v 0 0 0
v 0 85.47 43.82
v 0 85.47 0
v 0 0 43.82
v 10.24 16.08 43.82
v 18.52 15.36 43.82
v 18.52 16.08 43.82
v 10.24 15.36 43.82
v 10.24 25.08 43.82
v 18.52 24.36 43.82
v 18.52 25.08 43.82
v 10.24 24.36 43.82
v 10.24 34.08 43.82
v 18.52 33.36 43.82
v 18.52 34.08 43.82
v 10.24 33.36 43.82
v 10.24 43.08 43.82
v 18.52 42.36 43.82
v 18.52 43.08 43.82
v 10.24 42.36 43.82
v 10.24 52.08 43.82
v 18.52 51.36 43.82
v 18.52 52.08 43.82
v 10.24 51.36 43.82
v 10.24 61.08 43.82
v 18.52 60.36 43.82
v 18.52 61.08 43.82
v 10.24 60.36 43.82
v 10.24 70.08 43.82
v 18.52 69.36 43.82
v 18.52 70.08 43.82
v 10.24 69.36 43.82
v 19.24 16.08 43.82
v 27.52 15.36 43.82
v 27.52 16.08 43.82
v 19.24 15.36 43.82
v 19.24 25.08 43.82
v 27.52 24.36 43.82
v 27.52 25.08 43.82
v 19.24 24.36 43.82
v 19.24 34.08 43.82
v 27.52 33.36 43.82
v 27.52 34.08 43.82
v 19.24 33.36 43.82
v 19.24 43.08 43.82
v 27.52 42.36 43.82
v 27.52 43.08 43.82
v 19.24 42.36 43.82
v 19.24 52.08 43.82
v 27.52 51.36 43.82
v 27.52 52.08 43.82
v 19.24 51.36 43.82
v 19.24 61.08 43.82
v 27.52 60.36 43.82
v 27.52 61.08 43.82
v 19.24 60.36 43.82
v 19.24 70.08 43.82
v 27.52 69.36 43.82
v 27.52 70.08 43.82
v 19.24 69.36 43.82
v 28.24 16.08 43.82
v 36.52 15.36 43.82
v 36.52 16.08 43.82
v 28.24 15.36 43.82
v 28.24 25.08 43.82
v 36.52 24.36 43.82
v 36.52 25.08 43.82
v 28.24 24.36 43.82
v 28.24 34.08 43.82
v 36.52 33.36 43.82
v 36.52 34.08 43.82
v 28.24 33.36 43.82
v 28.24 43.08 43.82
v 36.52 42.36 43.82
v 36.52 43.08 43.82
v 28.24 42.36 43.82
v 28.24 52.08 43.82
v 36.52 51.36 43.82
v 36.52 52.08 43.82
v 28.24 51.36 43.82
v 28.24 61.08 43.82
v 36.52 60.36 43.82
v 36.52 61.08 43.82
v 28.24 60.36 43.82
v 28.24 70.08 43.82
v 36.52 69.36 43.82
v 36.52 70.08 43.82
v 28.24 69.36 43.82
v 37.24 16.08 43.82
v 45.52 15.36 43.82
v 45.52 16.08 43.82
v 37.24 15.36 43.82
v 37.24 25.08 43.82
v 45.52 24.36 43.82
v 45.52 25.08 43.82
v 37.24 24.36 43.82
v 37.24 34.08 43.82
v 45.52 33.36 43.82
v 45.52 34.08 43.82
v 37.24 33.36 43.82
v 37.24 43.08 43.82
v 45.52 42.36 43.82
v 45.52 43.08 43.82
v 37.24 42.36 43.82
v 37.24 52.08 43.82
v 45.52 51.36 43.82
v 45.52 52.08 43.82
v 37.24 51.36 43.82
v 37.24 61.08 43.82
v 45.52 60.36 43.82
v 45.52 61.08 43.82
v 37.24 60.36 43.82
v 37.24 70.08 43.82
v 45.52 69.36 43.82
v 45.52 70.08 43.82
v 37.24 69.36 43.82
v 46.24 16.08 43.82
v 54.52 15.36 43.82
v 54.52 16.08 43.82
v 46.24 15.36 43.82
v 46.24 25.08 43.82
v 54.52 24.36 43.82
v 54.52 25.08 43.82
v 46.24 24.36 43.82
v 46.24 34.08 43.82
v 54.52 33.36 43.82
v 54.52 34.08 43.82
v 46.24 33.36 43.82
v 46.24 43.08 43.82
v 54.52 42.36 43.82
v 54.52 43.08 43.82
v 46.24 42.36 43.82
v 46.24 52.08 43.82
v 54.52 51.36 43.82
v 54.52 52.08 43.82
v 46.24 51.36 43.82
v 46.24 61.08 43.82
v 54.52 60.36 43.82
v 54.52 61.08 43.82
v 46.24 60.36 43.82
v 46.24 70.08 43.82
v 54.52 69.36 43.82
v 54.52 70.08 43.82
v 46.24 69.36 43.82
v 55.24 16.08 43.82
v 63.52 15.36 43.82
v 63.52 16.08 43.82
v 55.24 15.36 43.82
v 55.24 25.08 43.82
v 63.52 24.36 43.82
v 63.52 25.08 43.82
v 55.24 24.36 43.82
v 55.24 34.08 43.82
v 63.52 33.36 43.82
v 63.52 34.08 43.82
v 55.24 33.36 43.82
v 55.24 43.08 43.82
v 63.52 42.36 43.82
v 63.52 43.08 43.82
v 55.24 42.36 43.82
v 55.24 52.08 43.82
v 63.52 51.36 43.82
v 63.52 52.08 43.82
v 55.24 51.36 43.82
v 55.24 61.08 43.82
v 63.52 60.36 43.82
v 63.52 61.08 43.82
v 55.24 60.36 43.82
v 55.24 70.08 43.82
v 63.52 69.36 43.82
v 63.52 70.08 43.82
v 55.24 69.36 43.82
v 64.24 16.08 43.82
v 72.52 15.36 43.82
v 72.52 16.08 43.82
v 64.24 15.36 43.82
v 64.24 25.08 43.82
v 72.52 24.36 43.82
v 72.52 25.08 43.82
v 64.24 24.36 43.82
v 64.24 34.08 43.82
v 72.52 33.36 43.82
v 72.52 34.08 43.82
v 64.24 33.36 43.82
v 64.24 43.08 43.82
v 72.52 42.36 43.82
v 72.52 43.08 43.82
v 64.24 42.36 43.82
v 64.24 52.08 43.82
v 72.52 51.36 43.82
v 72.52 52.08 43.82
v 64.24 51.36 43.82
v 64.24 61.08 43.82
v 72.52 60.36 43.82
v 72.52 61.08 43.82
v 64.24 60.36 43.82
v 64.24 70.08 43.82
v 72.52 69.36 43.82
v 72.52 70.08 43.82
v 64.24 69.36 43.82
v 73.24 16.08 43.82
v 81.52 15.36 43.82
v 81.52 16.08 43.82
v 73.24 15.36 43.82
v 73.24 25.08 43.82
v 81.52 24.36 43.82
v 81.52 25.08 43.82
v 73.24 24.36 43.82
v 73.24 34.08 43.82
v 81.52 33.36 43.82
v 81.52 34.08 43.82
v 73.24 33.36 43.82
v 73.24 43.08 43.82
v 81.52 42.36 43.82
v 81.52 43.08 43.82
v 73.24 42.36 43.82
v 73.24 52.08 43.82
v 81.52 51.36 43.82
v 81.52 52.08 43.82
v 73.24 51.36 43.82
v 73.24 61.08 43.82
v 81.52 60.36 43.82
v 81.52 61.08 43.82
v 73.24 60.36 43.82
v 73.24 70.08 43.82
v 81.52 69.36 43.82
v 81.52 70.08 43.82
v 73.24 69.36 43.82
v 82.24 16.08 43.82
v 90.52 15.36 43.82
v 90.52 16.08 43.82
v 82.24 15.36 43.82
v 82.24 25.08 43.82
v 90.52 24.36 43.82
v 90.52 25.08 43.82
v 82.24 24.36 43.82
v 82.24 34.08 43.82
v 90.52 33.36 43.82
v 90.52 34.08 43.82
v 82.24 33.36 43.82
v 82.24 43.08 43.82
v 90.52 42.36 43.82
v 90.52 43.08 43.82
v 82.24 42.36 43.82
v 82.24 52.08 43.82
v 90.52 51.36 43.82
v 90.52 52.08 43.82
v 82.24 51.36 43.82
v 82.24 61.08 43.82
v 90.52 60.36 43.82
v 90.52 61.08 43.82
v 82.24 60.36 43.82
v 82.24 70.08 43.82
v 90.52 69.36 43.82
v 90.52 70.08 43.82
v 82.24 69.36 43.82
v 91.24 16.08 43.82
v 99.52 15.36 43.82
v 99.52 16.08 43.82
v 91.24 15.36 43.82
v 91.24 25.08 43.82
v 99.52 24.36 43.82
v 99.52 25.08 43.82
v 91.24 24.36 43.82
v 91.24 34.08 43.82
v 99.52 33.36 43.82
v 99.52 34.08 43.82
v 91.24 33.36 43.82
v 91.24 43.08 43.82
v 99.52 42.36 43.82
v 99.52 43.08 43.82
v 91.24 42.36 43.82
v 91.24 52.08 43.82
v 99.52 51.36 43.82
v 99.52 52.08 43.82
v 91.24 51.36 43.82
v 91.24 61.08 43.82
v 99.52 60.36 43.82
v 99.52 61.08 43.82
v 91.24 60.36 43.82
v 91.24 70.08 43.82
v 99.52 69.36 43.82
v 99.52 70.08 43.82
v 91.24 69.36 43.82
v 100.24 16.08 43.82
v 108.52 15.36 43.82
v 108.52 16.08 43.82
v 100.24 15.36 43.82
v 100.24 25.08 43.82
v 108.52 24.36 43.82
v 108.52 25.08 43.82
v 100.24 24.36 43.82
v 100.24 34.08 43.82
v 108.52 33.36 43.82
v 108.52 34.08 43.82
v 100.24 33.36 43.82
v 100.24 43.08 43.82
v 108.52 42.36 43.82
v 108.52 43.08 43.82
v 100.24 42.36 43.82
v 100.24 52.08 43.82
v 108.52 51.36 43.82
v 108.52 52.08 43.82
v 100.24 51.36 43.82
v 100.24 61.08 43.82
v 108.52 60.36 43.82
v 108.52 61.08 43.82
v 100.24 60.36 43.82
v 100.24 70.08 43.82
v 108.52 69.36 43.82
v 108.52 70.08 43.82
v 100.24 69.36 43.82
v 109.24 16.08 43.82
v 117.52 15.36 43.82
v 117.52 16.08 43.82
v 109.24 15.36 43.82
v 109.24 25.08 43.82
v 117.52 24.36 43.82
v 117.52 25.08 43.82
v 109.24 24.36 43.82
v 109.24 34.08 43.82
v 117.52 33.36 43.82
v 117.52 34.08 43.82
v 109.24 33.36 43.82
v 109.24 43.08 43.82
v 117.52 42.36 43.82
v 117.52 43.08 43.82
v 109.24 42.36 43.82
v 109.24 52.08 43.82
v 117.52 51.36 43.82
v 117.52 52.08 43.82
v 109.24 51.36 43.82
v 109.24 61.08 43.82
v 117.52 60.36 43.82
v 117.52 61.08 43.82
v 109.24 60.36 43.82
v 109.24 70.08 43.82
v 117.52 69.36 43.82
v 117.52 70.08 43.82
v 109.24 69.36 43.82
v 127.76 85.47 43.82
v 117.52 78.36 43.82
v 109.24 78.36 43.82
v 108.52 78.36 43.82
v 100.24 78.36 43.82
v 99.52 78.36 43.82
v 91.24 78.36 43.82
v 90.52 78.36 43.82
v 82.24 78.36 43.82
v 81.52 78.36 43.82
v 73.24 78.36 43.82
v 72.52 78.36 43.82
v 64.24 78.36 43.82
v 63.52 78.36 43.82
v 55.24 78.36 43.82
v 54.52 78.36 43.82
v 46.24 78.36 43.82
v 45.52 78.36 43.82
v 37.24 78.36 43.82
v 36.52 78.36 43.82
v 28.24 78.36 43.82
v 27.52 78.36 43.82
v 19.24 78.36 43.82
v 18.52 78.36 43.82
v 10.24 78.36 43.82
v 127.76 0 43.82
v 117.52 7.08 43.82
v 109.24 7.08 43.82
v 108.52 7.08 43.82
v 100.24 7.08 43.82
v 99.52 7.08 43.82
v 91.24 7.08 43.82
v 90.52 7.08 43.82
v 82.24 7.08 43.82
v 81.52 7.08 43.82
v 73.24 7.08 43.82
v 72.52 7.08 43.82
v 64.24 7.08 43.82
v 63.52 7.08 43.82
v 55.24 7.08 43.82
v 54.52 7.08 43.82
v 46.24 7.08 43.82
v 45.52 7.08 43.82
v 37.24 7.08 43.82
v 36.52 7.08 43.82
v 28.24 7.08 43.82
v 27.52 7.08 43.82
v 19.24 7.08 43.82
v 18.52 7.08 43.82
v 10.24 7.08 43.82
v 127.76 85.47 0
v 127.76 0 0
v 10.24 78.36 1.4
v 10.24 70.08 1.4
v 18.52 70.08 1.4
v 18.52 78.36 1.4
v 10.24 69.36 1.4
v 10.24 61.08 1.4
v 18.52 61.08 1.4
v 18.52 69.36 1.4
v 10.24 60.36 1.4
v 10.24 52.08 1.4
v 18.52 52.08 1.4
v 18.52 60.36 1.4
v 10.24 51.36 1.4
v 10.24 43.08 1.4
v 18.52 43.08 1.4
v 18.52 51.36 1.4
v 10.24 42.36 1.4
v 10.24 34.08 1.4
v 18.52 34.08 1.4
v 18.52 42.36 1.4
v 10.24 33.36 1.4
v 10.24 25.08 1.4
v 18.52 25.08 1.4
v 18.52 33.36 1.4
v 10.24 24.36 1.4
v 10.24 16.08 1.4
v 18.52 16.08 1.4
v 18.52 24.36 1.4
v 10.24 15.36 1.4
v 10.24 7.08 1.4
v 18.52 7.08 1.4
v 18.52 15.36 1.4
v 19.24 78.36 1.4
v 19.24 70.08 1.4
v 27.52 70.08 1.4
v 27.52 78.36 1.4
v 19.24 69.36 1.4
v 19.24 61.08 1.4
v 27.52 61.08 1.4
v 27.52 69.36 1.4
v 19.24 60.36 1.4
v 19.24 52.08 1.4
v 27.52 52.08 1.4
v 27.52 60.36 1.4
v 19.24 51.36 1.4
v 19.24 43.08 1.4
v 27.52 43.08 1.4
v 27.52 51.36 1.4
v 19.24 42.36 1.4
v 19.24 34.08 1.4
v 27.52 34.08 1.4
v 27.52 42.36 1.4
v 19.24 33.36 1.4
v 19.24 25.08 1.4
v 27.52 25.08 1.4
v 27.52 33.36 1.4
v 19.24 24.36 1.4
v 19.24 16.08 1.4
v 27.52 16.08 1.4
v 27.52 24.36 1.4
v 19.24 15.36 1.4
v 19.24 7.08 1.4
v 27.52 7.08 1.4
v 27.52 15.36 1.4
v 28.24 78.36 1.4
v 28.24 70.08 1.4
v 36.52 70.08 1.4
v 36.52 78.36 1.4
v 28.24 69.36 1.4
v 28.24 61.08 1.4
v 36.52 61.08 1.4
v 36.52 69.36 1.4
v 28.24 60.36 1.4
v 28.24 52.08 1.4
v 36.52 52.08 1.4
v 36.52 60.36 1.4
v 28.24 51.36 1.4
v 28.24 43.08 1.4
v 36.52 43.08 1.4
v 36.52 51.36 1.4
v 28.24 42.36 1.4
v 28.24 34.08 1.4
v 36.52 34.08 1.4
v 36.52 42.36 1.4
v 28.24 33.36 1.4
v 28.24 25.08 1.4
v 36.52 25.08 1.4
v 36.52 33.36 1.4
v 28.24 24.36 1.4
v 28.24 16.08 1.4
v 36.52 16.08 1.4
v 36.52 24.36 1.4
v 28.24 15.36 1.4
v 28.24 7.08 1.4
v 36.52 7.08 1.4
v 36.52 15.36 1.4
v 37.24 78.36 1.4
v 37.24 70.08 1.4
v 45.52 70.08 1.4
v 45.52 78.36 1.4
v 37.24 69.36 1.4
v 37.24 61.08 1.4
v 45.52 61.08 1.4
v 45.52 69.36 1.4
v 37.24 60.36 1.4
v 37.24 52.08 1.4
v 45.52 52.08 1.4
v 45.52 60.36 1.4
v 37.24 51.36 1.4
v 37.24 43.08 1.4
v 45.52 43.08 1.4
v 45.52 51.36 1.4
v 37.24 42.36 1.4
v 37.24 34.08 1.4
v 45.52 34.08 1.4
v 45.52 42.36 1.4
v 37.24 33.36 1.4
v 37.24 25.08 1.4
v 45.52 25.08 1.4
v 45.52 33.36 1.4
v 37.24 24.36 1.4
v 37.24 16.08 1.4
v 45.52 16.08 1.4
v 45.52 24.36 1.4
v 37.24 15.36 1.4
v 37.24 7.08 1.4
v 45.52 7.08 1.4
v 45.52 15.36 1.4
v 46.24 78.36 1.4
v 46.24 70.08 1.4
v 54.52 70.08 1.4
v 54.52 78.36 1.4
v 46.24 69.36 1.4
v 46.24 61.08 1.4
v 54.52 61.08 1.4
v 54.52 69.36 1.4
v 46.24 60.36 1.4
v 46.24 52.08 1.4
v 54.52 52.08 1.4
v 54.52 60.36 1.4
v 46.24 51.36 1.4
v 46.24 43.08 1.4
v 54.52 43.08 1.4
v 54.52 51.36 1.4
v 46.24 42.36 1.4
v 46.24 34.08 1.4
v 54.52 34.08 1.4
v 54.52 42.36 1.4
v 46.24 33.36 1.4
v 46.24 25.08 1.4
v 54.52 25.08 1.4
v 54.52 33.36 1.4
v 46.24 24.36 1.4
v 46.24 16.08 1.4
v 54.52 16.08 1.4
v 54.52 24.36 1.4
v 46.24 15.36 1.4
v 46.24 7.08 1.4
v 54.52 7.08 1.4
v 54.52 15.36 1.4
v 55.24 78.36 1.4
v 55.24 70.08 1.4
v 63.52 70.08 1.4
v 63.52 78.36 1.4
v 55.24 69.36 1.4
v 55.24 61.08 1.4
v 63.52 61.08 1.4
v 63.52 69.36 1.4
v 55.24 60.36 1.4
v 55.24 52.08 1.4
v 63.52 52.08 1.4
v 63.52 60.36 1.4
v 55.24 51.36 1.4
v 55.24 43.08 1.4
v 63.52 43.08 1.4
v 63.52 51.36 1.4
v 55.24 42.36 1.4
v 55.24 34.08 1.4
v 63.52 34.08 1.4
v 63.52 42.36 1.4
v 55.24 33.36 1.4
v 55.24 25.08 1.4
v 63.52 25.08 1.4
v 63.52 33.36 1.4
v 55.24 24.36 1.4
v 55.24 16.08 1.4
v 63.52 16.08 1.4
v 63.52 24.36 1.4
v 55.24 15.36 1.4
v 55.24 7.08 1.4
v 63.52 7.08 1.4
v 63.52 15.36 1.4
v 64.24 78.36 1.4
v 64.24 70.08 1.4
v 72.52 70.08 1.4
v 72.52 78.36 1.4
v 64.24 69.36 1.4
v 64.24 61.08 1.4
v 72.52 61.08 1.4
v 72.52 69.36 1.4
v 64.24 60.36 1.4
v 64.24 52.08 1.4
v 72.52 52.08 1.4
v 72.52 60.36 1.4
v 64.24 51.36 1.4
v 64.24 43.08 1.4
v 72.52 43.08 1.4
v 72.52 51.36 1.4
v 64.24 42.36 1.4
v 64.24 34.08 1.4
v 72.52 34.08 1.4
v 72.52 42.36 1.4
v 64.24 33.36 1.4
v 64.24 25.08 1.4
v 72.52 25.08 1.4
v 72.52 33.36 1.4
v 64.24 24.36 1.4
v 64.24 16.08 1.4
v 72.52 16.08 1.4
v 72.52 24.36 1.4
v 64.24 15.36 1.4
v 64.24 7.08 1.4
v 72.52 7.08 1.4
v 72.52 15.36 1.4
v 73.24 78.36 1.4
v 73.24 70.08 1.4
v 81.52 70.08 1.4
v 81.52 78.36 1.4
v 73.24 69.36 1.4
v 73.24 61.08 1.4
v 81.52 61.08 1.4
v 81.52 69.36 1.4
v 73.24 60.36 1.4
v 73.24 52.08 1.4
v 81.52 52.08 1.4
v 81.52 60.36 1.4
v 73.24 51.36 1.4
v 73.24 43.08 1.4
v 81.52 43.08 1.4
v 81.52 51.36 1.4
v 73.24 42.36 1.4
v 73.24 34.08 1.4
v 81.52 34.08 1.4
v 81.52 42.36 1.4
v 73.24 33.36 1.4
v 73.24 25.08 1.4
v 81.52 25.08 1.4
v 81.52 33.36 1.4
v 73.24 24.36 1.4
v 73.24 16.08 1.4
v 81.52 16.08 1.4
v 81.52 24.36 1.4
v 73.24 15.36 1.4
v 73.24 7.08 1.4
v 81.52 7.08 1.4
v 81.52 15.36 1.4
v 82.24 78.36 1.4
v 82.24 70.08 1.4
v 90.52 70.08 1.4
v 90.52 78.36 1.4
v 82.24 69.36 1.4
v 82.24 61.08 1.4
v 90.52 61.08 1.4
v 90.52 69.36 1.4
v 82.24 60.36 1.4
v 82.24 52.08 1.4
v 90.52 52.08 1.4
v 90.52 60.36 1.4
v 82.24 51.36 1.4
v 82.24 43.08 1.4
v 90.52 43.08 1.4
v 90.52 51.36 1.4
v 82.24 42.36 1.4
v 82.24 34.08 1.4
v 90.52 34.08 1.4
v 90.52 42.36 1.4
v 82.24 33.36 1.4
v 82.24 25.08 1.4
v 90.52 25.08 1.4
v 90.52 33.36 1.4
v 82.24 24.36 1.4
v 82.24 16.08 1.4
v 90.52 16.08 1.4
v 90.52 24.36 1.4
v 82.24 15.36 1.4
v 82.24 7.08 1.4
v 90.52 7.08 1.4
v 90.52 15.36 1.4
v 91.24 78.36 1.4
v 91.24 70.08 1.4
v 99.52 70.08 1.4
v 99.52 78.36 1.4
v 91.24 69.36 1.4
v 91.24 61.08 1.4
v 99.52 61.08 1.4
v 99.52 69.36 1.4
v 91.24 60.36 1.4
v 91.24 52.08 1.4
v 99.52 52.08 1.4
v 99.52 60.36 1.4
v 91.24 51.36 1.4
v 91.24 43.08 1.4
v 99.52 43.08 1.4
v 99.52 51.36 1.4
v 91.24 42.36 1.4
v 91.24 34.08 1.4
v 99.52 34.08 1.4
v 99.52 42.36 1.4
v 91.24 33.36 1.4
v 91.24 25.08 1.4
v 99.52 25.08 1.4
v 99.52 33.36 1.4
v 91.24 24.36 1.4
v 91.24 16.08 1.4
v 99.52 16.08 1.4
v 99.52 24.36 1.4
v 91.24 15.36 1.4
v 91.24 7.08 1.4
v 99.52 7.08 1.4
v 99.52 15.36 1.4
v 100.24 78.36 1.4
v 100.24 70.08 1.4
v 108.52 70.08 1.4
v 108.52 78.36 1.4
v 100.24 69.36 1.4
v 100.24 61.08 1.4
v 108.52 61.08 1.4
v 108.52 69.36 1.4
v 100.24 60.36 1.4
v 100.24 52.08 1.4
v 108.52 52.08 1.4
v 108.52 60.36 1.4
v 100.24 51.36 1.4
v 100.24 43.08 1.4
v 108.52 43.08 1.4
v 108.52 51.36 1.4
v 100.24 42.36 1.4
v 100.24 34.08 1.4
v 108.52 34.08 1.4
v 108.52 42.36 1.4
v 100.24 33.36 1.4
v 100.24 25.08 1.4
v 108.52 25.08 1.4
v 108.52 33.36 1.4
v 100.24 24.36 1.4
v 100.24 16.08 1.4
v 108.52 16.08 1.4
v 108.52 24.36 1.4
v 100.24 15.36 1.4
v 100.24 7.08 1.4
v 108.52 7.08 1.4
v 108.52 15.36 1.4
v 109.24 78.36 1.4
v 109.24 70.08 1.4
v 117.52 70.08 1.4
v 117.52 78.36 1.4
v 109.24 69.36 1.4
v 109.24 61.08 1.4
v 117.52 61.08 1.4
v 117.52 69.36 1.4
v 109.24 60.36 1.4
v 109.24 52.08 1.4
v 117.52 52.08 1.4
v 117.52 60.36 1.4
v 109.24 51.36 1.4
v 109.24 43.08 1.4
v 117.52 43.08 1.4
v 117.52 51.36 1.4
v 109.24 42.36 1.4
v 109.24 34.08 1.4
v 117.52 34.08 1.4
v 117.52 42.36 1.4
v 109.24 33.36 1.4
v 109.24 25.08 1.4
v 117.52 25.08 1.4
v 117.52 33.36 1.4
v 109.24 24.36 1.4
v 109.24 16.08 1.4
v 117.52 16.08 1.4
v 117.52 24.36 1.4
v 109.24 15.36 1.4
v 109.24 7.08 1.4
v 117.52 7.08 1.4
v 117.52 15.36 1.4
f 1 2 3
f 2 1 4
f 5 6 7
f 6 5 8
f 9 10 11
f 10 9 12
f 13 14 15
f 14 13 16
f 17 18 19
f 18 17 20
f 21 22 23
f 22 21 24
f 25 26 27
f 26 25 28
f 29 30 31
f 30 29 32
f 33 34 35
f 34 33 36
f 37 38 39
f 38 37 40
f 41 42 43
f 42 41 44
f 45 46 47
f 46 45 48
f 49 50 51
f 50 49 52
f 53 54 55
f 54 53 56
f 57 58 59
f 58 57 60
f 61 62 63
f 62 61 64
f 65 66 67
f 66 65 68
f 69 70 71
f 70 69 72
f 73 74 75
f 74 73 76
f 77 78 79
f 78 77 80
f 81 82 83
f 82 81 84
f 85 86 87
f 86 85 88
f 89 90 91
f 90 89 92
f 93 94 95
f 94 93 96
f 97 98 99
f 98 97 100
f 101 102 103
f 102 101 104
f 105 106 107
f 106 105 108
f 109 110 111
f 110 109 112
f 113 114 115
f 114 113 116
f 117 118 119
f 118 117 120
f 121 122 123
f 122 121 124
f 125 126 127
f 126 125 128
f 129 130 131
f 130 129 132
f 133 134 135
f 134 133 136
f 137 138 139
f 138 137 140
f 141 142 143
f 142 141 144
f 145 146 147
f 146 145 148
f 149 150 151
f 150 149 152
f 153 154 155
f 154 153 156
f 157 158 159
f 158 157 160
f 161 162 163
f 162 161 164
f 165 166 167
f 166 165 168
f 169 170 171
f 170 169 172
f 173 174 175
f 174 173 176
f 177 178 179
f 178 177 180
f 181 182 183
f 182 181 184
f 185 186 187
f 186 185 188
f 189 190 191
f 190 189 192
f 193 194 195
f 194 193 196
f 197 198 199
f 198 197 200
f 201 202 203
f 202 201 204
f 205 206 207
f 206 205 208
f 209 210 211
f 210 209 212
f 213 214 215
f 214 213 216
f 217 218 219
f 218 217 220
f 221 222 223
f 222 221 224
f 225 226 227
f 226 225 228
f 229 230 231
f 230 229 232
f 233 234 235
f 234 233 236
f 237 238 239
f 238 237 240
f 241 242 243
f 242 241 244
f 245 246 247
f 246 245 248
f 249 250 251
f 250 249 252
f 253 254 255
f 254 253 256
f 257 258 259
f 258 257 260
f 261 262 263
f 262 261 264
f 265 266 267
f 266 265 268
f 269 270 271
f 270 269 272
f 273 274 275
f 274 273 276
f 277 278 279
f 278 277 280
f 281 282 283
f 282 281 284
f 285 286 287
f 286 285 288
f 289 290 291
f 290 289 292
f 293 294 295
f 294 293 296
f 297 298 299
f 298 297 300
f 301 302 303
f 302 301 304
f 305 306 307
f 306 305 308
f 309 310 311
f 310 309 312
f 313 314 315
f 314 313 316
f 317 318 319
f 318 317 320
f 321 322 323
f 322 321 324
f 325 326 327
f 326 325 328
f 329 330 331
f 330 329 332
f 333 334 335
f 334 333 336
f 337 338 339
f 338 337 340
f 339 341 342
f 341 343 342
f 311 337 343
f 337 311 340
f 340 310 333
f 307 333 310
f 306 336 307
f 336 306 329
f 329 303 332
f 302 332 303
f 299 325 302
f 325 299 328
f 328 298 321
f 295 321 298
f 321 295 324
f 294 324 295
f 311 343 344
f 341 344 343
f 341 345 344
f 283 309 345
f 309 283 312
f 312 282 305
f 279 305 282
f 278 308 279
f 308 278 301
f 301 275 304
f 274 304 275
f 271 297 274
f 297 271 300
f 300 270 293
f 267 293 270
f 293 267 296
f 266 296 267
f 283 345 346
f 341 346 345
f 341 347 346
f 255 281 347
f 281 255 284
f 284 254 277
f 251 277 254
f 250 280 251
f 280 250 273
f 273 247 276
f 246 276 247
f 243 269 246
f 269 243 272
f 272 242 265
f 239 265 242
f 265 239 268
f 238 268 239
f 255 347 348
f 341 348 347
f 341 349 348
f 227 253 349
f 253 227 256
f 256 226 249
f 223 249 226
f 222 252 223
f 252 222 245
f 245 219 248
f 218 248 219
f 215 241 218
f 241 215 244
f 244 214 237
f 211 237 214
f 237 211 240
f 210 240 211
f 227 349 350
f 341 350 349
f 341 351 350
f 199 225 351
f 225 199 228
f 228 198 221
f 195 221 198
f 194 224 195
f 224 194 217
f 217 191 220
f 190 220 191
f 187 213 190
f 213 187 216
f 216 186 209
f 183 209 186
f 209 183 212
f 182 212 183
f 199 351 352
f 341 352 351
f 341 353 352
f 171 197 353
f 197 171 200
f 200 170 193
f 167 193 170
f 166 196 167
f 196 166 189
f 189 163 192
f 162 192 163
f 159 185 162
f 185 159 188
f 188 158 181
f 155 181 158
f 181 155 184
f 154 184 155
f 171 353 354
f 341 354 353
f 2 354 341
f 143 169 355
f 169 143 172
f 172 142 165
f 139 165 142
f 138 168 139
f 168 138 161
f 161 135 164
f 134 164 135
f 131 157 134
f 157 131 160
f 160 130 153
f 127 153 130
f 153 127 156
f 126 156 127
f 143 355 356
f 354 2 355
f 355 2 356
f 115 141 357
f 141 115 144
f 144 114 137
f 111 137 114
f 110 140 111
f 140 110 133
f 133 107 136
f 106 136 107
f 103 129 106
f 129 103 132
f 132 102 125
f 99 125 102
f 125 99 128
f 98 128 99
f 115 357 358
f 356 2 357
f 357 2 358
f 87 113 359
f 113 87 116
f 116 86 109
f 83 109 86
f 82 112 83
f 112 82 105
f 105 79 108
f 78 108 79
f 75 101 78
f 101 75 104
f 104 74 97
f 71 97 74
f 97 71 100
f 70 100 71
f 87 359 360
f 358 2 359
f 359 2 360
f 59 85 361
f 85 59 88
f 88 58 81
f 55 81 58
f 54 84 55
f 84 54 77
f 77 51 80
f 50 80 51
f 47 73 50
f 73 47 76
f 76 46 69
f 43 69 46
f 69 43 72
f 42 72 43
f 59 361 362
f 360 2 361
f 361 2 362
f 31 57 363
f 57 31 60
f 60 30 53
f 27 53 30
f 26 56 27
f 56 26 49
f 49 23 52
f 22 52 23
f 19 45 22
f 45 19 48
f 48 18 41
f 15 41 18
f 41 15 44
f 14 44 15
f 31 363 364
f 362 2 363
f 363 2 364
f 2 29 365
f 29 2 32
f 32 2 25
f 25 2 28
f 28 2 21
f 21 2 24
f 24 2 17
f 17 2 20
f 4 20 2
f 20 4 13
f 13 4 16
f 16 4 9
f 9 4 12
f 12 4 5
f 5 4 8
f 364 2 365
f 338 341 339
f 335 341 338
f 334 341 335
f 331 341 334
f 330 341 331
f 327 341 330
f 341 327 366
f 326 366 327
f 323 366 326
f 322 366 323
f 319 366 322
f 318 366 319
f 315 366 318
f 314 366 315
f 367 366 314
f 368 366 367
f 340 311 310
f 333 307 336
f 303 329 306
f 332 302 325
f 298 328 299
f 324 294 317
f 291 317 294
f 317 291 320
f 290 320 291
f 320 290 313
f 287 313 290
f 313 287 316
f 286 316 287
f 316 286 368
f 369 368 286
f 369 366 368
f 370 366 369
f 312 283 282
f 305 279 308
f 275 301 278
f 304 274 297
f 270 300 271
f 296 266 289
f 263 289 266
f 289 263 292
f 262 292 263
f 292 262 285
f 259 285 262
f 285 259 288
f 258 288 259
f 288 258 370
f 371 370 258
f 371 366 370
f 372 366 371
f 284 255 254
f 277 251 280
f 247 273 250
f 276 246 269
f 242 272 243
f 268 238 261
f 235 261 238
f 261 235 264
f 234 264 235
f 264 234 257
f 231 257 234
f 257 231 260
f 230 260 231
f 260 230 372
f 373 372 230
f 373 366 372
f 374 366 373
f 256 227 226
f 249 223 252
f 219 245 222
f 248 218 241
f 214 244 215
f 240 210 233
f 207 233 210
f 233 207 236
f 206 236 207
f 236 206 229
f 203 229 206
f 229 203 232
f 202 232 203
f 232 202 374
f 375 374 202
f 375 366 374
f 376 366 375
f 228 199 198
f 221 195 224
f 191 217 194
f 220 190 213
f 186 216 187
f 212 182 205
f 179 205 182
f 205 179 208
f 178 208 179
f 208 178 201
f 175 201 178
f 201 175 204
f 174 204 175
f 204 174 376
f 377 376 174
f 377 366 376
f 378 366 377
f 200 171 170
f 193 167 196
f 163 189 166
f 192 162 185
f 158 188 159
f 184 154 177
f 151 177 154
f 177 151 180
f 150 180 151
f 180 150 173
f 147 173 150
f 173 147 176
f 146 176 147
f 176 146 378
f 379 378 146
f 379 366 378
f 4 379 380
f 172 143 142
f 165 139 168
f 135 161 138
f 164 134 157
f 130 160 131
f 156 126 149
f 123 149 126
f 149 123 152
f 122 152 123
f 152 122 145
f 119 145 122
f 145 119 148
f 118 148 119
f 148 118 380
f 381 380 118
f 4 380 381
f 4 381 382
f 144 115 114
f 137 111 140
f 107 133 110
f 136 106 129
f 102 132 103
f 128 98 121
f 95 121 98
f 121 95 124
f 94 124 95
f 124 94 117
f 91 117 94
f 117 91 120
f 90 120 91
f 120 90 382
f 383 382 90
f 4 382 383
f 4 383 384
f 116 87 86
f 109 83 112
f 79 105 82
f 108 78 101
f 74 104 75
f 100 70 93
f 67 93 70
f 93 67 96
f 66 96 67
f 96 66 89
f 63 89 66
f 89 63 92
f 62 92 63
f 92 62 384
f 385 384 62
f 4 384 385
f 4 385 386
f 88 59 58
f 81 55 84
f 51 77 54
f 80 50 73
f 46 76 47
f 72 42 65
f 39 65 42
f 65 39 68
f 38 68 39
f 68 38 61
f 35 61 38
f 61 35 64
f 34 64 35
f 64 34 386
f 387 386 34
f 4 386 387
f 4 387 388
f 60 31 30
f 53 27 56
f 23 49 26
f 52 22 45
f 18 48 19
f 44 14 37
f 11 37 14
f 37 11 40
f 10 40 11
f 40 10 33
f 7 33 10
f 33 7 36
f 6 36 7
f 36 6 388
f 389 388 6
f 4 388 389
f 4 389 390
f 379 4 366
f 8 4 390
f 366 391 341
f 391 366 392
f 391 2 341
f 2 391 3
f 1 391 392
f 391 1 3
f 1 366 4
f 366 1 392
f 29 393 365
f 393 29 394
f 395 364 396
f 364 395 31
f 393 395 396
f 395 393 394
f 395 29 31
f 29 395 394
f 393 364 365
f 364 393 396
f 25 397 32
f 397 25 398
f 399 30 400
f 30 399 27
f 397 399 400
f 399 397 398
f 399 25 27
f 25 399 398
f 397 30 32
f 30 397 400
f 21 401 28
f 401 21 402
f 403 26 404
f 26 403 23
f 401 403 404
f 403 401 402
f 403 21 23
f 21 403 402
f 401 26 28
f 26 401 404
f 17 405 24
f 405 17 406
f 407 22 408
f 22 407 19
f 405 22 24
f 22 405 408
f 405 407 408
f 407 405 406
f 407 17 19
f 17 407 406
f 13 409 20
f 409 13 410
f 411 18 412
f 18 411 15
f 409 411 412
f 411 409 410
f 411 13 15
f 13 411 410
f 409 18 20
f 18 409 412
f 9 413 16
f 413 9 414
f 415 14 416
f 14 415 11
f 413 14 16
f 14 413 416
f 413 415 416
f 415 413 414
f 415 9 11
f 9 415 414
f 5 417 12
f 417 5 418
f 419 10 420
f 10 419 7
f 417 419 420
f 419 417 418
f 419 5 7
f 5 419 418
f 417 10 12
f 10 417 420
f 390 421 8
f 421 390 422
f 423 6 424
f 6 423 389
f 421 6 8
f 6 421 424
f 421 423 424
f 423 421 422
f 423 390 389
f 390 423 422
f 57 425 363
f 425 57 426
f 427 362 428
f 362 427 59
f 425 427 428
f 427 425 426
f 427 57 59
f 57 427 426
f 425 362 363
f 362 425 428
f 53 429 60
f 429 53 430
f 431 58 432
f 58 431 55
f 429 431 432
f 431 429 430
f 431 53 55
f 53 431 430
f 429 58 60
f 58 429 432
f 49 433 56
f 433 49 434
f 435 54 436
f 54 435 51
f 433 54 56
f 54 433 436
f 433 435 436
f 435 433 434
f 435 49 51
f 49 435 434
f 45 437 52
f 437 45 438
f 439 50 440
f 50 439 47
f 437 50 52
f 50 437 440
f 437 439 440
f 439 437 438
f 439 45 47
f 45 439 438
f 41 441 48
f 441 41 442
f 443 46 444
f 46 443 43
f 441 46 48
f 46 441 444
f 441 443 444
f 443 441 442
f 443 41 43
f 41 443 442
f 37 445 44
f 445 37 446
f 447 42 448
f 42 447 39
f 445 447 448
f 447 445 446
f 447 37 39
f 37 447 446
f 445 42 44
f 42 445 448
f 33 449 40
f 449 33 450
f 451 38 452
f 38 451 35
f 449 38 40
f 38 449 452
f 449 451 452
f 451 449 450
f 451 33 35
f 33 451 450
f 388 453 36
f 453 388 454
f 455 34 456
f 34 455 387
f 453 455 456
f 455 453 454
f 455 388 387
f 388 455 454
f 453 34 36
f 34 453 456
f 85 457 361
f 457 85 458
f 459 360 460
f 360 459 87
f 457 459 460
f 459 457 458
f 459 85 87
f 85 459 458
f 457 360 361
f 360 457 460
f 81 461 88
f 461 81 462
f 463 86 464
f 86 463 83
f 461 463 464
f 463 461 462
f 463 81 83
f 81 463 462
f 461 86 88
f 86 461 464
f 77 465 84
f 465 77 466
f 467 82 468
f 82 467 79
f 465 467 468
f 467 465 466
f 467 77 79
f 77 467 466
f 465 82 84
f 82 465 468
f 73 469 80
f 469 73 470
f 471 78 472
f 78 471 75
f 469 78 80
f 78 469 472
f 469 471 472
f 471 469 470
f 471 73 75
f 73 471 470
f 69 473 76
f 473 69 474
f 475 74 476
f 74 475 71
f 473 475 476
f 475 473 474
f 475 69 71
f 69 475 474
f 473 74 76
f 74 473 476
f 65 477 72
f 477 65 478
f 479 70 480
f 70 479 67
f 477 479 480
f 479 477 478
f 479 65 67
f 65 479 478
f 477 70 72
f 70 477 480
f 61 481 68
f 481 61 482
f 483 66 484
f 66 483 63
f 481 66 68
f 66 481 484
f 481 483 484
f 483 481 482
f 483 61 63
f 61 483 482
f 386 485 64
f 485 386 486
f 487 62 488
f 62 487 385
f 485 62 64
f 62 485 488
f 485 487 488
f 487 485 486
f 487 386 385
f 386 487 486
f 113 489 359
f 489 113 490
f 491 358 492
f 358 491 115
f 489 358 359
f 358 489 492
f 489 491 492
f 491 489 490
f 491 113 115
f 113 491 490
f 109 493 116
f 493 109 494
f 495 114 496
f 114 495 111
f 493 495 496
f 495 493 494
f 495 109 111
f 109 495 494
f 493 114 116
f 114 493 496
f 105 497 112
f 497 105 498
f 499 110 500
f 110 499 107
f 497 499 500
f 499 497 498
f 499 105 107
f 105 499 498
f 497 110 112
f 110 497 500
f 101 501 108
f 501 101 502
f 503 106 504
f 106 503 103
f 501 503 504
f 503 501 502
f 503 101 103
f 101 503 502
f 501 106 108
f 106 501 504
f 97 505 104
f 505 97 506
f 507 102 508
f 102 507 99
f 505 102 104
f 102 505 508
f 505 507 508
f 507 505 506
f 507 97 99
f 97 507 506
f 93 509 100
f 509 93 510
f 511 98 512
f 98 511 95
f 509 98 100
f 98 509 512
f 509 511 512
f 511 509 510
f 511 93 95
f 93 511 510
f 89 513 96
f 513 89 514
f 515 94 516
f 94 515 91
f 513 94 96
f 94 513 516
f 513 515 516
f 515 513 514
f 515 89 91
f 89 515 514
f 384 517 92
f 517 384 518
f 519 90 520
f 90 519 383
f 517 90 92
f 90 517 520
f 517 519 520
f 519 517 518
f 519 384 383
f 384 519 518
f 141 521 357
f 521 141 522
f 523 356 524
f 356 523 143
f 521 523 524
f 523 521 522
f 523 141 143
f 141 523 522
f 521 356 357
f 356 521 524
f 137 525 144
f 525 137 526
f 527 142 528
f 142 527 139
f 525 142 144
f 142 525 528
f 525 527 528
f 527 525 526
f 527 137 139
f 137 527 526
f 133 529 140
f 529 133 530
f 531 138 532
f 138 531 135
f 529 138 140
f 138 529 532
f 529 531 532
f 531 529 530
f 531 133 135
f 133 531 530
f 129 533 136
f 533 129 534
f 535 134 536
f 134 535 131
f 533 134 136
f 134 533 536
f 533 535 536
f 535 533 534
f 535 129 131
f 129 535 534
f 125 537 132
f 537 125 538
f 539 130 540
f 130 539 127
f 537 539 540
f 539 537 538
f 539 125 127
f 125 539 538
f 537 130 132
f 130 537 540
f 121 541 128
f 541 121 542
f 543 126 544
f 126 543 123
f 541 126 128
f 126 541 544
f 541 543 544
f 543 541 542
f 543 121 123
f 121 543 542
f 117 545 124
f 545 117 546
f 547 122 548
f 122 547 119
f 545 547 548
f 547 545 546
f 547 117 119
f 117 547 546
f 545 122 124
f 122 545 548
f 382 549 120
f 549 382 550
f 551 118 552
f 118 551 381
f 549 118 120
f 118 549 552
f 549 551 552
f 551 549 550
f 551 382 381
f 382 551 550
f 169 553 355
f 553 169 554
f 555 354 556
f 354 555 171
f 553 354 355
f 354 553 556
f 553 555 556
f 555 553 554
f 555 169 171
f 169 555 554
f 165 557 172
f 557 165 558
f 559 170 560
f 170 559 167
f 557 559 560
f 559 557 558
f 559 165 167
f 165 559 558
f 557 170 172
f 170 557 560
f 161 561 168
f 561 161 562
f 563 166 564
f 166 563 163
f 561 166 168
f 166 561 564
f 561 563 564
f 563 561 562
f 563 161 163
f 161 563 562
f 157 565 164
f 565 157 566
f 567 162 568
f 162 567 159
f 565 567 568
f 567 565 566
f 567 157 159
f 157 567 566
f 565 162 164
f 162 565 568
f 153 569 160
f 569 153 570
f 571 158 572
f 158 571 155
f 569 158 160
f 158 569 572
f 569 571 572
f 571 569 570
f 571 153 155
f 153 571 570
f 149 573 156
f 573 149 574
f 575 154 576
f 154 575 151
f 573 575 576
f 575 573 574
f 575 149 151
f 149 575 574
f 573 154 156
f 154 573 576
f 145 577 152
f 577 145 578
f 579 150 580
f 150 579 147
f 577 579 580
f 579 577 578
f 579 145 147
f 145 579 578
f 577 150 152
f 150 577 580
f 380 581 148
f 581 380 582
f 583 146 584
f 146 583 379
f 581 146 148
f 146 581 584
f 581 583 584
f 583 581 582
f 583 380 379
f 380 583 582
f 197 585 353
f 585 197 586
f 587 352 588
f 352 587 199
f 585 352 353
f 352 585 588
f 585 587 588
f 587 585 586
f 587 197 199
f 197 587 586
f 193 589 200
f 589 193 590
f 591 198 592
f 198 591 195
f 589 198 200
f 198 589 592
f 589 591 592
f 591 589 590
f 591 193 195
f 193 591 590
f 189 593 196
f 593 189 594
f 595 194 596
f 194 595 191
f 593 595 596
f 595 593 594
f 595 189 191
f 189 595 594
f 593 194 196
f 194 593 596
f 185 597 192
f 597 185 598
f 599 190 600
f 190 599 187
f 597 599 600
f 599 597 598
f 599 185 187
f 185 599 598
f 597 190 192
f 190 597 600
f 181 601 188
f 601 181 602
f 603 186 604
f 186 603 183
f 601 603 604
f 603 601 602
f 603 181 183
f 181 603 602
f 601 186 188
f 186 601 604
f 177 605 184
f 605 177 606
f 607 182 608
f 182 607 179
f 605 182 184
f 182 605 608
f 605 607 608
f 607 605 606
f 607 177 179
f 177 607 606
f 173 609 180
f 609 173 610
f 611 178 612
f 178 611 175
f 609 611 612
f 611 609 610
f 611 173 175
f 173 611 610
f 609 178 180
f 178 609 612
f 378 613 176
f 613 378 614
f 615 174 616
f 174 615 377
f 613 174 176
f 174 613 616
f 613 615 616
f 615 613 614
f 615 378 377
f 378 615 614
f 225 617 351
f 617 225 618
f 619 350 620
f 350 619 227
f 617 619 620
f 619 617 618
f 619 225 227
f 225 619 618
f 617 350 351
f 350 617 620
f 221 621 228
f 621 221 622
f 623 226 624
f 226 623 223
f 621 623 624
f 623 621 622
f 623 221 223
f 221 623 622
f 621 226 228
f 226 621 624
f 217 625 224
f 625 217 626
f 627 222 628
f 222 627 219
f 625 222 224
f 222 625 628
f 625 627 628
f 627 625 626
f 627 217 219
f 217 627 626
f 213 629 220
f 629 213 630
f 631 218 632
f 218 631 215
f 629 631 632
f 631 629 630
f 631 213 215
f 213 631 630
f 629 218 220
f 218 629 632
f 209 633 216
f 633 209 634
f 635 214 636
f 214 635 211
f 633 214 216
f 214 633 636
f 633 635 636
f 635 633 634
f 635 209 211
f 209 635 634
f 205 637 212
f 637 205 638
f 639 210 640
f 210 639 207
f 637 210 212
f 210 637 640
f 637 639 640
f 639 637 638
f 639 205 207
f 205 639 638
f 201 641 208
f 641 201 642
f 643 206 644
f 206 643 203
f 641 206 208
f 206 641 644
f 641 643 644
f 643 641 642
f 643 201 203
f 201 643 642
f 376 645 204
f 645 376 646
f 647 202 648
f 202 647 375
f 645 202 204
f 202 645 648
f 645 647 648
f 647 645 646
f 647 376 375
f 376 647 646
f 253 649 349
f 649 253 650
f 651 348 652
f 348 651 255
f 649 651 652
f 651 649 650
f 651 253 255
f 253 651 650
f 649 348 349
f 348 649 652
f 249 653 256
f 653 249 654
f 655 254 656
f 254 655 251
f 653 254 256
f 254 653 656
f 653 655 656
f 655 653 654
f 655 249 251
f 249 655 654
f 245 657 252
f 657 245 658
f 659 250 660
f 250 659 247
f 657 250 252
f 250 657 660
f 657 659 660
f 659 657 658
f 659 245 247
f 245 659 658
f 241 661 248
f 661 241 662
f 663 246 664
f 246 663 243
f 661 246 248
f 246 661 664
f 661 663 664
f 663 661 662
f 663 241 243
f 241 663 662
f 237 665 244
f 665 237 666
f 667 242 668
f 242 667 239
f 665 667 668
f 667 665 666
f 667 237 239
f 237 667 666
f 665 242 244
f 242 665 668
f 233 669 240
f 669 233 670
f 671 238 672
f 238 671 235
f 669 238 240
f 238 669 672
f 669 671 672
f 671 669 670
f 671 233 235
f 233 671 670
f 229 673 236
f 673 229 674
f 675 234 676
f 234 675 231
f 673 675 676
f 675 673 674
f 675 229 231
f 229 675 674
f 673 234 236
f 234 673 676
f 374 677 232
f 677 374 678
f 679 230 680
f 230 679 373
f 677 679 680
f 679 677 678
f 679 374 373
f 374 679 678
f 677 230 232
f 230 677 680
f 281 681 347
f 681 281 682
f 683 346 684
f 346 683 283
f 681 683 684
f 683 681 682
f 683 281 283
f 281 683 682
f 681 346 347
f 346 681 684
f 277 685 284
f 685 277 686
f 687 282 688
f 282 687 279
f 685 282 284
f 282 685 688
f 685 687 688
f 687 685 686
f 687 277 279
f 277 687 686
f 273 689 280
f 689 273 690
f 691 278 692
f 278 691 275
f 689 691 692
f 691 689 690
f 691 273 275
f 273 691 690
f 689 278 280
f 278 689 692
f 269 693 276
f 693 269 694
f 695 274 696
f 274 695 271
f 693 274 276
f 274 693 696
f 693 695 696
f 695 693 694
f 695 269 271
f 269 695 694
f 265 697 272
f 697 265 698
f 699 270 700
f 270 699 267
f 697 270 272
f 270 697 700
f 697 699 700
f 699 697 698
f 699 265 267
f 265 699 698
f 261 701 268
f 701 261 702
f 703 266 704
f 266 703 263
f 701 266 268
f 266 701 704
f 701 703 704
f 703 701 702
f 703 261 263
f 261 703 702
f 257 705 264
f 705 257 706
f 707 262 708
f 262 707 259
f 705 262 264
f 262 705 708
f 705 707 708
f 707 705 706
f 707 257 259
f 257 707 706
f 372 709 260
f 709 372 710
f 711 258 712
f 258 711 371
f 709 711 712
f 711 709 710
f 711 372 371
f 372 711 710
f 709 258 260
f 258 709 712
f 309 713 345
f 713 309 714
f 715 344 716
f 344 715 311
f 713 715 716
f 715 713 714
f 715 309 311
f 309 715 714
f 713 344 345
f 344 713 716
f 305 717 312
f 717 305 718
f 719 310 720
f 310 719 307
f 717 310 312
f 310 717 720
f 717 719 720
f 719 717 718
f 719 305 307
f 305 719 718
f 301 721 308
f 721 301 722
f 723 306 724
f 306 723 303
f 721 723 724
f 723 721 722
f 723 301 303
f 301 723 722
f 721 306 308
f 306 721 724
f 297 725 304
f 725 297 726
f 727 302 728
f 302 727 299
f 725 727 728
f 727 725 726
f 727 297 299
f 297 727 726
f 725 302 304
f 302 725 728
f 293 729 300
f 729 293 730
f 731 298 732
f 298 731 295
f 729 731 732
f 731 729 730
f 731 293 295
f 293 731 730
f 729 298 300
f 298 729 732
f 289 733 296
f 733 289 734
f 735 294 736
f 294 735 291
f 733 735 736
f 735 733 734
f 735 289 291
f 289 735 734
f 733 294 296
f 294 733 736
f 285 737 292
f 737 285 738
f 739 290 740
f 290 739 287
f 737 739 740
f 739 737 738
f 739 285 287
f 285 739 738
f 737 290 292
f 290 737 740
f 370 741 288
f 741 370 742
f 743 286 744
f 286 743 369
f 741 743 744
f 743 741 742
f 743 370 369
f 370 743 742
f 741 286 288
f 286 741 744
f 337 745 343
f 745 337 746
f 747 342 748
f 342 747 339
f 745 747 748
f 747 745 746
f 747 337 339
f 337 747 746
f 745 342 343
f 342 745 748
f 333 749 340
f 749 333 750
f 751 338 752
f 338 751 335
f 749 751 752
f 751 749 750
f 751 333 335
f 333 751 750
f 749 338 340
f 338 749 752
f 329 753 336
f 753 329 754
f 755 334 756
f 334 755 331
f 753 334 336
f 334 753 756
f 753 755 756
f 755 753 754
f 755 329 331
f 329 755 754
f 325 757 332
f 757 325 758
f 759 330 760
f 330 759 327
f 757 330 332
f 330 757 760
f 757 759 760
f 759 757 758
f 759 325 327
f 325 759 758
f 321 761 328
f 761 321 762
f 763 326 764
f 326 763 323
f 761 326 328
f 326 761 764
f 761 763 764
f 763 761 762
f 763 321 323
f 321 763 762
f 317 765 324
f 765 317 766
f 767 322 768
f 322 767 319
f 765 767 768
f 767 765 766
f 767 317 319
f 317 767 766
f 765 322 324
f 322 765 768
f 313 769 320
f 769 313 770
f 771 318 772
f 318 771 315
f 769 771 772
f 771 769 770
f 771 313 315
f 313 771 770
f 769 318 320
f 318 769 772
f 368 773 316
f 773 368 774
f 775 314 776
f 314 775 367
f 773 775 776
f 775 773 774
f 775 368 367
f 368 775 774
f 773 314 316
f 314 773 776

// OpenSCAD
// Costar 96 Well Plate 2.2 mL
// loadName: costar_96_wellplate_2.2ml
// Auto-generated by labware_to_stl.py from Opentrons V2 labware definition

$fn = 8;

difference() {
    // ── Labware body ──────────────────────────────────────────────
    cube([127.7600, 85.4700, 43.8200]);

    // ── Well cutouts ──────────────────────────────────────────────
    // Well A1
    translate([10.2400, 70.0800, 1.4000])
        cube([8.2800, 8.2800, 43.4200]);
    // Well B1
    translate([10.2400, 61.0800, 1.4000])
        cube([8.2800, 8.2800, 43.4200]);
    // Well C1
    translate([10.2400, 52.0800, 1.4000])
        cube([8.2800, 8.2800, 43.4200]);
    // Well D1
    translate([10.2400, 43.0800, 1.4000])
        cube([8.2800, 8.2800, 43.4200]);
    // Well E1
    translate([10.2400, 34.0800, 1.4000])
        cube([8.2800, 8.2800, 43.4200]);
    // Well F1
    translate([10.2400, 25.0800, 1.4000])
        cube([8.2800, 8.2800, 43.4200]);
    // Well G1
    translate([10.2400, 16.0800, 1.4000])
        cube([8.2800, 8.2800, 43.4200]);
    // Well H1
    translate([10.2400, 7.0800, 1.4000])
        cube([8.2800, 8.2800, 43.4200]);
    // Well A2
    translate([19.2400, 70.0800, 1.4000])
        cube([8.2800, 8.2800, 43.4200]);
    // Well B2
    translate([19.2400, 61.0800, 1.4000])
        cube([8.2800, 8.2800, 43.4200]);
    // Well C2
    translate([19.2400, 52.0800, 1.4000])
        cube([8.2800, 8.2800, 43.4200]);
    // Well D2
    translate([19.2400, 43.0800, 1.4000])
        cube([8.2800, 8.2800, 43.4200]);
    // Well E2
    translate([19.2400, 34.0800, 1.4000])
        cube([8.2800, 8.2800, 43.4200]);
    // Well F2
    translate([19.2400, 25.0800, 1.4000])
        cube([8.2800, 8.2800, 43.4200]);
    // Well G2
    translate([19.2400, 16.0800, 1.4000])
        cube([8.2800, 8.2800, 43.4200]);
    // Well H2
    translate([19.2400, 7.0800, 1.4000])
        cube([8.2800, 8.2800, 43.4200]);
    // Well A3
    translate([28.2400, 70.0800, 1.4000])
        cube([8.2800, 8.2800, 43.4200]);
    // Well B3
    translate([28.2400, 61.0800, 1.4000])
        cube([8.2800, 8.2800, 43.4200]);
    // Well C3
    translate([28.2400, 52.0800, 1.4000])
        cube([8.2800, 8.2800, 43.4200]);
    // Well D3
    translate([28.2400, 43.0800, 1.4000])
        cube([8.2800, 8.2800, 43.4200]);
    // Well E3
    translate([28.2400, 34.0800, 1.4000])
        cube([8.2800, 8.2800, 43.4200]);
    // Well F3
    translate([28.2400, 25.0800, 1.4000])
        cube([8.2800, 8.2800, 43.4200]);
    // Well G3
    translate([28.2400, 16.0800, 1.4000])
        cube([8.2800, 8.2800, 43.4200]);
    // Well H3
    translate([28.2400, 7.0800, 1.4000])
        cube([8.2800, 8.2800, 43.4200]);
    // Well A4
    translate([37.2400, 70.0800, 1.4000])
        cube([8.2800, 8.2800, 43.4200]);
    // Well B4
    translate([37.2400, 61.0800, 1.4000])
        cube([8.2800, 8.2800, 43.4200]);
    // Well C4
    translate([37.2400, 52.0800, 1.4000])
        cube([8.2800, 8.2800, 43.4200]);
    // Well D4
    translate([37.2400, 43.0800, 1.4000])
        cube([8.2800, 8.2800, 43.4200]);
    // Well E4
    translate([37.2400, 34.0800, 1.4000])
        cube([8.2800, 8.2800, 43.4200]);
    // Well F4
    translate([37.2400, 25.0800, 1.4000])
        cube([8.2800, 8.2800, 43.4200]);
    // Well G4
    translate([37.2400, 16.0800, 1.4000])
        cube([8.2800, 8.2800, 43.4200]);
    // Well H4
    translate([37.2400, 7.0800, 1.4000])
        cube([8.2800, 8.2800, 43.4200]);
    // Well A5
    translate([46.2400, 70.0800, 1.4000])
        cube([8.2800, 8.2800, 43.4200]);
    // Well B5
    translate([46.2400, 61.0800, 1.4000])
        cube([8.2800, 8.2800, 43.4200]);
    // Well C5
    translate([46.2400, 52.0800, 1.4000])
        cube([8.2800, 8.2800, 43.4200]);
    // Well D5
    translate([46.2400, 43.0800, 1.4000])
        cube([8.2800, 8.2800, 43.4200]);
    // Well E5
    translate([46.2400, 34.0800, 1.4000])
        cube([8.2800, 8.2800, 43.4200]);
    // Well F5
    translate([46.2400, 25.0800, 1.4000])
        cube([8.2800, 8.2800, 43.4200]);
    // Well G5
    translate([46.2400, 16.0800, 1.4000])
        cube([8.2800, 8.2800, 43.4200]);
    // Well H5
    translate([46.2400, 7.0800, 1.4000])
        cube([8.2800, 8.2800, 43.4200]);
    // Well A6
    translate([55.2400, 70.0800, 1.4000])
        cube([8.2800, 8.2800, 43.4200]);
    // Well B6
    translate([55.2400, 61.0800, 1.4000])
        cube([8.2800, 8.2800, 43.4200]);
    // Well C6
    translate([55.2400, 52.0800, 1.4000])
        cube([8.2800, 8.2800, 43.4200]);
    // Well D6
    translate([55.2400, 43.0800, 1.4000])
        cube([8.2800, 8.2800, 43.4200]);
    // Well E6
    translate([55.2400, 34.0800, 1.4000])
        cube([8.2800, 8.2800, 43.4200]);
    // Well F6
    translate([55.2400, 25.0800, 1.4000])
        cube([8.2800, 8.2800, 43.4200]);
    // Well G6
    translate([55.2400, 16.0800, 1.4000])
        cube([8.2800, 8.2800, 43.4200]);
    // Well H6
    translate([55.2400, 7.0800, 1.4000])
        cube([8.2800, 8.2800, 43.4200]);
    // Well A7
    translate([64.2400, 70.0800, 1.4000])
        cube([8.2800, 8.2800, 43.4200]);
    // Well B7
    translate([64.2400, 61.0800, 1.4000])
        cube([8.2800, 8.2800, 43.4200]);
    // Well C7
    translate([64.2400, 52.0800, 1.4000])
        cube([8.2800, 8.2800, 43.4200]);
    // Well D7
    translate([64.2400, 43.0800, 1.4000])
        cube([8.2800, 8.2800, 43.4200]);
    // Well E7
    translate([64.2400, 34.0800, 1.4000])
        cube([8.2800, 8.2800, 43.4200]);
    // Well F7
    translate([64.2400, 25.0800, 1.4000])
        cube([8.2800, 8.2800, 43.4200]);
    // Well G7
    translate([64.2400, 16.0800, 1.4000])
        cube([8.2800, 8.2800, 43.4200]);
    // Well H7
    translate([64.2400, 7.0800, 1.4000])
        cube([8.2800, 8.2800, 43.4200]);
    // Well A8
    translate([73.2400, 70.0800, 1.4000])
        cube([8.2800, 8.2800, 43.4200]);
    // Well B8
    translate([73.2400, 61.0800, 1.4000])
        cube([8.2800, 8.2800, 43.4200]);
    // Well C8
    translate([73.2400, 52.0800, 1.4000])
        cube([8.2800, 8.2800, 43.4200]);
    // Well D8
    translate([73.2400, 43.0800, 1.4000])
        cube([8.2800, 8.2800, 43.4200]);
    // Well E8
    translate([73.2400, 34.0800, 1.4000])
        cube([8.2800, 8.2800, 43.4200]);
    // Well F8
    translate([73.2400, 25.0800, 1.4000])
        cube([8.2800, 8.2800, 43.4200]);
    // Well G8
    translate([73.2400, 16.0800, 1.4000])
        cube([8.2800, 8.2800, 43.4200]);
    // Well H8
    translate([73.2400, 7.0800, 1.4000])
        cube([8.2800, 8.2800, 43.4200]);
    // Well A9
    translate([82.2400, 70.0800, 1.4000])
        cube([8.2800, 8.2800, 43.4200]);
    // Well B9
    translate([82.2400, 61.0800, 1.4000])
        cube([8.2800, 8.2800, 43.4200]);
    // Well C9
    translate([82.2400, 52.0800, 1.4000])
        cube([8.2800, 8.2800, 43.4200]);
    // Well D9
    translate([82.2400, 43.0800, 1.4000])
        cube([8.2800, 8.2800, 43.4200]);
    // Well E9
    translate([82.2400, 34.0800, 1.4000])
        cube([8.2800, 8.2800, 43.4200]);
    // Well F9
    translate([82.2400, 25.0800, 1.4000])
        cube([8.2800, 8.2800, 43.4200]);
    // Well G9
    translate([82.2400, 16.0800, 1.4000])
        cube([8.2800, 8.2800, 43.4200]);
    // Well H9
    translate([82.2400, 7.0800, 1.4000])
        cube([8.2800, 8.2800, 43.4200]);
    // Well A10
    translate([91.2400, 70.0800, 1.4000])
        cube([8.2800, 8.2800, 43.4200]);
    // Well B10
    translate([91.2400, 61.0800, 1.4000])
        cube([8.2800, 8.2800, 43.4200]);
    // Well C10
    translate([91.2400, 52.0800, 1.4000])
        cube([8.2800, 8.2800, 43.4200]);
    // Well D10
    translate([91.2400, 43.0800, 1.4000])
        cube([8.2800, 8.2800, 43.4200]);
    // Well E10
    translate([91.2400, 34.0800, 1.4000])
        cube([8.2800, 8.2800, 43.4200]);
    // Well F10
    translate([91.2400, 25.0800, 1.4000])
        cube([8.2800, 8.2800, 43.4200]);
    // Well G10
    translate([91.2400, 16.0800, 1.4000])
        cube([8.2800, 8.2800, 43.4200]);
    // Well H10
    translate([91.2400, 7.0800, 1.4000])
        cube([8.2800, 8.2800, 43.4200]);
    // Well A11
    translate([100.2400, 70.0800, 1.4000])
        cube([8.2800, 8.2800, 43.4200]);
    // Well B11
    translate([100.2400, 61.0800, 1.4000])
        cube([8.2800, 8.2800, 43.4200]);
    // Well C11
    translate([100.2400, 52.0800, 1.4000])
        cube([8.2800, 8.2800, 43.4200]);
    // Well D11
    translate([100.2400, 43.0800, 1.4000])
        cube([8.2800, 8.2800, 43.4200]);
    // Well E11
    translate([100.2400, 34.0800, 1.4000])
        cube([8.2800, 8.2800, 43.4200]);
    // Well F11
    translate([100.2400, 25.0800, 1.4000])
        cube([8.2800, 8.2800, 43.4200]);
    // Well G11
    translate([100.2400, 16.0800, 1.4000])
        cube([8.2800, 8.2800, 43.4200]);
    // Well H11
    translate([100.2400, 7.0800, 1.4000])
        cube([8.2800, 8.2800, 43.4200]);
    // Well A12
    translate([109.2400, 70.0800, 1.4000])
        cube([8.2800, 8.2800, 43.4200]);
    // Well B12
    translate([109.2400, 61.0800, 1.4000])
        cube([8.2800, 8.2800, 43.4200]);
    // Well C12
    translate([109.2400, 52.0800, 1.4000])
        cube([8.2800, 8.2800, 43.4200]);
    // Well D12
    translate([109.2400, 43.0800, 1.4000])
        cube([8.2800, 8.2800, 43.4200]);
    // Well E12
    translate([109.2400, 34.0800, 1.4000])
        cube([8.2800, 8.2800, 43.4200]);
    // Well F12
    translate([109.2400, 25.0800, 1.4000])
        cube([8.2800, 8.2800, 43.4200]);
    // Well G12
    translate([109.2400, 16.0800, 1.4000])
        cube([8.2800, 8.2800, 43.4200]);
    // Well H12
    translate([109.2400, 7.0800, 1.4000])
        cube([8.2800, 8.2800, 43.4200]);
}
